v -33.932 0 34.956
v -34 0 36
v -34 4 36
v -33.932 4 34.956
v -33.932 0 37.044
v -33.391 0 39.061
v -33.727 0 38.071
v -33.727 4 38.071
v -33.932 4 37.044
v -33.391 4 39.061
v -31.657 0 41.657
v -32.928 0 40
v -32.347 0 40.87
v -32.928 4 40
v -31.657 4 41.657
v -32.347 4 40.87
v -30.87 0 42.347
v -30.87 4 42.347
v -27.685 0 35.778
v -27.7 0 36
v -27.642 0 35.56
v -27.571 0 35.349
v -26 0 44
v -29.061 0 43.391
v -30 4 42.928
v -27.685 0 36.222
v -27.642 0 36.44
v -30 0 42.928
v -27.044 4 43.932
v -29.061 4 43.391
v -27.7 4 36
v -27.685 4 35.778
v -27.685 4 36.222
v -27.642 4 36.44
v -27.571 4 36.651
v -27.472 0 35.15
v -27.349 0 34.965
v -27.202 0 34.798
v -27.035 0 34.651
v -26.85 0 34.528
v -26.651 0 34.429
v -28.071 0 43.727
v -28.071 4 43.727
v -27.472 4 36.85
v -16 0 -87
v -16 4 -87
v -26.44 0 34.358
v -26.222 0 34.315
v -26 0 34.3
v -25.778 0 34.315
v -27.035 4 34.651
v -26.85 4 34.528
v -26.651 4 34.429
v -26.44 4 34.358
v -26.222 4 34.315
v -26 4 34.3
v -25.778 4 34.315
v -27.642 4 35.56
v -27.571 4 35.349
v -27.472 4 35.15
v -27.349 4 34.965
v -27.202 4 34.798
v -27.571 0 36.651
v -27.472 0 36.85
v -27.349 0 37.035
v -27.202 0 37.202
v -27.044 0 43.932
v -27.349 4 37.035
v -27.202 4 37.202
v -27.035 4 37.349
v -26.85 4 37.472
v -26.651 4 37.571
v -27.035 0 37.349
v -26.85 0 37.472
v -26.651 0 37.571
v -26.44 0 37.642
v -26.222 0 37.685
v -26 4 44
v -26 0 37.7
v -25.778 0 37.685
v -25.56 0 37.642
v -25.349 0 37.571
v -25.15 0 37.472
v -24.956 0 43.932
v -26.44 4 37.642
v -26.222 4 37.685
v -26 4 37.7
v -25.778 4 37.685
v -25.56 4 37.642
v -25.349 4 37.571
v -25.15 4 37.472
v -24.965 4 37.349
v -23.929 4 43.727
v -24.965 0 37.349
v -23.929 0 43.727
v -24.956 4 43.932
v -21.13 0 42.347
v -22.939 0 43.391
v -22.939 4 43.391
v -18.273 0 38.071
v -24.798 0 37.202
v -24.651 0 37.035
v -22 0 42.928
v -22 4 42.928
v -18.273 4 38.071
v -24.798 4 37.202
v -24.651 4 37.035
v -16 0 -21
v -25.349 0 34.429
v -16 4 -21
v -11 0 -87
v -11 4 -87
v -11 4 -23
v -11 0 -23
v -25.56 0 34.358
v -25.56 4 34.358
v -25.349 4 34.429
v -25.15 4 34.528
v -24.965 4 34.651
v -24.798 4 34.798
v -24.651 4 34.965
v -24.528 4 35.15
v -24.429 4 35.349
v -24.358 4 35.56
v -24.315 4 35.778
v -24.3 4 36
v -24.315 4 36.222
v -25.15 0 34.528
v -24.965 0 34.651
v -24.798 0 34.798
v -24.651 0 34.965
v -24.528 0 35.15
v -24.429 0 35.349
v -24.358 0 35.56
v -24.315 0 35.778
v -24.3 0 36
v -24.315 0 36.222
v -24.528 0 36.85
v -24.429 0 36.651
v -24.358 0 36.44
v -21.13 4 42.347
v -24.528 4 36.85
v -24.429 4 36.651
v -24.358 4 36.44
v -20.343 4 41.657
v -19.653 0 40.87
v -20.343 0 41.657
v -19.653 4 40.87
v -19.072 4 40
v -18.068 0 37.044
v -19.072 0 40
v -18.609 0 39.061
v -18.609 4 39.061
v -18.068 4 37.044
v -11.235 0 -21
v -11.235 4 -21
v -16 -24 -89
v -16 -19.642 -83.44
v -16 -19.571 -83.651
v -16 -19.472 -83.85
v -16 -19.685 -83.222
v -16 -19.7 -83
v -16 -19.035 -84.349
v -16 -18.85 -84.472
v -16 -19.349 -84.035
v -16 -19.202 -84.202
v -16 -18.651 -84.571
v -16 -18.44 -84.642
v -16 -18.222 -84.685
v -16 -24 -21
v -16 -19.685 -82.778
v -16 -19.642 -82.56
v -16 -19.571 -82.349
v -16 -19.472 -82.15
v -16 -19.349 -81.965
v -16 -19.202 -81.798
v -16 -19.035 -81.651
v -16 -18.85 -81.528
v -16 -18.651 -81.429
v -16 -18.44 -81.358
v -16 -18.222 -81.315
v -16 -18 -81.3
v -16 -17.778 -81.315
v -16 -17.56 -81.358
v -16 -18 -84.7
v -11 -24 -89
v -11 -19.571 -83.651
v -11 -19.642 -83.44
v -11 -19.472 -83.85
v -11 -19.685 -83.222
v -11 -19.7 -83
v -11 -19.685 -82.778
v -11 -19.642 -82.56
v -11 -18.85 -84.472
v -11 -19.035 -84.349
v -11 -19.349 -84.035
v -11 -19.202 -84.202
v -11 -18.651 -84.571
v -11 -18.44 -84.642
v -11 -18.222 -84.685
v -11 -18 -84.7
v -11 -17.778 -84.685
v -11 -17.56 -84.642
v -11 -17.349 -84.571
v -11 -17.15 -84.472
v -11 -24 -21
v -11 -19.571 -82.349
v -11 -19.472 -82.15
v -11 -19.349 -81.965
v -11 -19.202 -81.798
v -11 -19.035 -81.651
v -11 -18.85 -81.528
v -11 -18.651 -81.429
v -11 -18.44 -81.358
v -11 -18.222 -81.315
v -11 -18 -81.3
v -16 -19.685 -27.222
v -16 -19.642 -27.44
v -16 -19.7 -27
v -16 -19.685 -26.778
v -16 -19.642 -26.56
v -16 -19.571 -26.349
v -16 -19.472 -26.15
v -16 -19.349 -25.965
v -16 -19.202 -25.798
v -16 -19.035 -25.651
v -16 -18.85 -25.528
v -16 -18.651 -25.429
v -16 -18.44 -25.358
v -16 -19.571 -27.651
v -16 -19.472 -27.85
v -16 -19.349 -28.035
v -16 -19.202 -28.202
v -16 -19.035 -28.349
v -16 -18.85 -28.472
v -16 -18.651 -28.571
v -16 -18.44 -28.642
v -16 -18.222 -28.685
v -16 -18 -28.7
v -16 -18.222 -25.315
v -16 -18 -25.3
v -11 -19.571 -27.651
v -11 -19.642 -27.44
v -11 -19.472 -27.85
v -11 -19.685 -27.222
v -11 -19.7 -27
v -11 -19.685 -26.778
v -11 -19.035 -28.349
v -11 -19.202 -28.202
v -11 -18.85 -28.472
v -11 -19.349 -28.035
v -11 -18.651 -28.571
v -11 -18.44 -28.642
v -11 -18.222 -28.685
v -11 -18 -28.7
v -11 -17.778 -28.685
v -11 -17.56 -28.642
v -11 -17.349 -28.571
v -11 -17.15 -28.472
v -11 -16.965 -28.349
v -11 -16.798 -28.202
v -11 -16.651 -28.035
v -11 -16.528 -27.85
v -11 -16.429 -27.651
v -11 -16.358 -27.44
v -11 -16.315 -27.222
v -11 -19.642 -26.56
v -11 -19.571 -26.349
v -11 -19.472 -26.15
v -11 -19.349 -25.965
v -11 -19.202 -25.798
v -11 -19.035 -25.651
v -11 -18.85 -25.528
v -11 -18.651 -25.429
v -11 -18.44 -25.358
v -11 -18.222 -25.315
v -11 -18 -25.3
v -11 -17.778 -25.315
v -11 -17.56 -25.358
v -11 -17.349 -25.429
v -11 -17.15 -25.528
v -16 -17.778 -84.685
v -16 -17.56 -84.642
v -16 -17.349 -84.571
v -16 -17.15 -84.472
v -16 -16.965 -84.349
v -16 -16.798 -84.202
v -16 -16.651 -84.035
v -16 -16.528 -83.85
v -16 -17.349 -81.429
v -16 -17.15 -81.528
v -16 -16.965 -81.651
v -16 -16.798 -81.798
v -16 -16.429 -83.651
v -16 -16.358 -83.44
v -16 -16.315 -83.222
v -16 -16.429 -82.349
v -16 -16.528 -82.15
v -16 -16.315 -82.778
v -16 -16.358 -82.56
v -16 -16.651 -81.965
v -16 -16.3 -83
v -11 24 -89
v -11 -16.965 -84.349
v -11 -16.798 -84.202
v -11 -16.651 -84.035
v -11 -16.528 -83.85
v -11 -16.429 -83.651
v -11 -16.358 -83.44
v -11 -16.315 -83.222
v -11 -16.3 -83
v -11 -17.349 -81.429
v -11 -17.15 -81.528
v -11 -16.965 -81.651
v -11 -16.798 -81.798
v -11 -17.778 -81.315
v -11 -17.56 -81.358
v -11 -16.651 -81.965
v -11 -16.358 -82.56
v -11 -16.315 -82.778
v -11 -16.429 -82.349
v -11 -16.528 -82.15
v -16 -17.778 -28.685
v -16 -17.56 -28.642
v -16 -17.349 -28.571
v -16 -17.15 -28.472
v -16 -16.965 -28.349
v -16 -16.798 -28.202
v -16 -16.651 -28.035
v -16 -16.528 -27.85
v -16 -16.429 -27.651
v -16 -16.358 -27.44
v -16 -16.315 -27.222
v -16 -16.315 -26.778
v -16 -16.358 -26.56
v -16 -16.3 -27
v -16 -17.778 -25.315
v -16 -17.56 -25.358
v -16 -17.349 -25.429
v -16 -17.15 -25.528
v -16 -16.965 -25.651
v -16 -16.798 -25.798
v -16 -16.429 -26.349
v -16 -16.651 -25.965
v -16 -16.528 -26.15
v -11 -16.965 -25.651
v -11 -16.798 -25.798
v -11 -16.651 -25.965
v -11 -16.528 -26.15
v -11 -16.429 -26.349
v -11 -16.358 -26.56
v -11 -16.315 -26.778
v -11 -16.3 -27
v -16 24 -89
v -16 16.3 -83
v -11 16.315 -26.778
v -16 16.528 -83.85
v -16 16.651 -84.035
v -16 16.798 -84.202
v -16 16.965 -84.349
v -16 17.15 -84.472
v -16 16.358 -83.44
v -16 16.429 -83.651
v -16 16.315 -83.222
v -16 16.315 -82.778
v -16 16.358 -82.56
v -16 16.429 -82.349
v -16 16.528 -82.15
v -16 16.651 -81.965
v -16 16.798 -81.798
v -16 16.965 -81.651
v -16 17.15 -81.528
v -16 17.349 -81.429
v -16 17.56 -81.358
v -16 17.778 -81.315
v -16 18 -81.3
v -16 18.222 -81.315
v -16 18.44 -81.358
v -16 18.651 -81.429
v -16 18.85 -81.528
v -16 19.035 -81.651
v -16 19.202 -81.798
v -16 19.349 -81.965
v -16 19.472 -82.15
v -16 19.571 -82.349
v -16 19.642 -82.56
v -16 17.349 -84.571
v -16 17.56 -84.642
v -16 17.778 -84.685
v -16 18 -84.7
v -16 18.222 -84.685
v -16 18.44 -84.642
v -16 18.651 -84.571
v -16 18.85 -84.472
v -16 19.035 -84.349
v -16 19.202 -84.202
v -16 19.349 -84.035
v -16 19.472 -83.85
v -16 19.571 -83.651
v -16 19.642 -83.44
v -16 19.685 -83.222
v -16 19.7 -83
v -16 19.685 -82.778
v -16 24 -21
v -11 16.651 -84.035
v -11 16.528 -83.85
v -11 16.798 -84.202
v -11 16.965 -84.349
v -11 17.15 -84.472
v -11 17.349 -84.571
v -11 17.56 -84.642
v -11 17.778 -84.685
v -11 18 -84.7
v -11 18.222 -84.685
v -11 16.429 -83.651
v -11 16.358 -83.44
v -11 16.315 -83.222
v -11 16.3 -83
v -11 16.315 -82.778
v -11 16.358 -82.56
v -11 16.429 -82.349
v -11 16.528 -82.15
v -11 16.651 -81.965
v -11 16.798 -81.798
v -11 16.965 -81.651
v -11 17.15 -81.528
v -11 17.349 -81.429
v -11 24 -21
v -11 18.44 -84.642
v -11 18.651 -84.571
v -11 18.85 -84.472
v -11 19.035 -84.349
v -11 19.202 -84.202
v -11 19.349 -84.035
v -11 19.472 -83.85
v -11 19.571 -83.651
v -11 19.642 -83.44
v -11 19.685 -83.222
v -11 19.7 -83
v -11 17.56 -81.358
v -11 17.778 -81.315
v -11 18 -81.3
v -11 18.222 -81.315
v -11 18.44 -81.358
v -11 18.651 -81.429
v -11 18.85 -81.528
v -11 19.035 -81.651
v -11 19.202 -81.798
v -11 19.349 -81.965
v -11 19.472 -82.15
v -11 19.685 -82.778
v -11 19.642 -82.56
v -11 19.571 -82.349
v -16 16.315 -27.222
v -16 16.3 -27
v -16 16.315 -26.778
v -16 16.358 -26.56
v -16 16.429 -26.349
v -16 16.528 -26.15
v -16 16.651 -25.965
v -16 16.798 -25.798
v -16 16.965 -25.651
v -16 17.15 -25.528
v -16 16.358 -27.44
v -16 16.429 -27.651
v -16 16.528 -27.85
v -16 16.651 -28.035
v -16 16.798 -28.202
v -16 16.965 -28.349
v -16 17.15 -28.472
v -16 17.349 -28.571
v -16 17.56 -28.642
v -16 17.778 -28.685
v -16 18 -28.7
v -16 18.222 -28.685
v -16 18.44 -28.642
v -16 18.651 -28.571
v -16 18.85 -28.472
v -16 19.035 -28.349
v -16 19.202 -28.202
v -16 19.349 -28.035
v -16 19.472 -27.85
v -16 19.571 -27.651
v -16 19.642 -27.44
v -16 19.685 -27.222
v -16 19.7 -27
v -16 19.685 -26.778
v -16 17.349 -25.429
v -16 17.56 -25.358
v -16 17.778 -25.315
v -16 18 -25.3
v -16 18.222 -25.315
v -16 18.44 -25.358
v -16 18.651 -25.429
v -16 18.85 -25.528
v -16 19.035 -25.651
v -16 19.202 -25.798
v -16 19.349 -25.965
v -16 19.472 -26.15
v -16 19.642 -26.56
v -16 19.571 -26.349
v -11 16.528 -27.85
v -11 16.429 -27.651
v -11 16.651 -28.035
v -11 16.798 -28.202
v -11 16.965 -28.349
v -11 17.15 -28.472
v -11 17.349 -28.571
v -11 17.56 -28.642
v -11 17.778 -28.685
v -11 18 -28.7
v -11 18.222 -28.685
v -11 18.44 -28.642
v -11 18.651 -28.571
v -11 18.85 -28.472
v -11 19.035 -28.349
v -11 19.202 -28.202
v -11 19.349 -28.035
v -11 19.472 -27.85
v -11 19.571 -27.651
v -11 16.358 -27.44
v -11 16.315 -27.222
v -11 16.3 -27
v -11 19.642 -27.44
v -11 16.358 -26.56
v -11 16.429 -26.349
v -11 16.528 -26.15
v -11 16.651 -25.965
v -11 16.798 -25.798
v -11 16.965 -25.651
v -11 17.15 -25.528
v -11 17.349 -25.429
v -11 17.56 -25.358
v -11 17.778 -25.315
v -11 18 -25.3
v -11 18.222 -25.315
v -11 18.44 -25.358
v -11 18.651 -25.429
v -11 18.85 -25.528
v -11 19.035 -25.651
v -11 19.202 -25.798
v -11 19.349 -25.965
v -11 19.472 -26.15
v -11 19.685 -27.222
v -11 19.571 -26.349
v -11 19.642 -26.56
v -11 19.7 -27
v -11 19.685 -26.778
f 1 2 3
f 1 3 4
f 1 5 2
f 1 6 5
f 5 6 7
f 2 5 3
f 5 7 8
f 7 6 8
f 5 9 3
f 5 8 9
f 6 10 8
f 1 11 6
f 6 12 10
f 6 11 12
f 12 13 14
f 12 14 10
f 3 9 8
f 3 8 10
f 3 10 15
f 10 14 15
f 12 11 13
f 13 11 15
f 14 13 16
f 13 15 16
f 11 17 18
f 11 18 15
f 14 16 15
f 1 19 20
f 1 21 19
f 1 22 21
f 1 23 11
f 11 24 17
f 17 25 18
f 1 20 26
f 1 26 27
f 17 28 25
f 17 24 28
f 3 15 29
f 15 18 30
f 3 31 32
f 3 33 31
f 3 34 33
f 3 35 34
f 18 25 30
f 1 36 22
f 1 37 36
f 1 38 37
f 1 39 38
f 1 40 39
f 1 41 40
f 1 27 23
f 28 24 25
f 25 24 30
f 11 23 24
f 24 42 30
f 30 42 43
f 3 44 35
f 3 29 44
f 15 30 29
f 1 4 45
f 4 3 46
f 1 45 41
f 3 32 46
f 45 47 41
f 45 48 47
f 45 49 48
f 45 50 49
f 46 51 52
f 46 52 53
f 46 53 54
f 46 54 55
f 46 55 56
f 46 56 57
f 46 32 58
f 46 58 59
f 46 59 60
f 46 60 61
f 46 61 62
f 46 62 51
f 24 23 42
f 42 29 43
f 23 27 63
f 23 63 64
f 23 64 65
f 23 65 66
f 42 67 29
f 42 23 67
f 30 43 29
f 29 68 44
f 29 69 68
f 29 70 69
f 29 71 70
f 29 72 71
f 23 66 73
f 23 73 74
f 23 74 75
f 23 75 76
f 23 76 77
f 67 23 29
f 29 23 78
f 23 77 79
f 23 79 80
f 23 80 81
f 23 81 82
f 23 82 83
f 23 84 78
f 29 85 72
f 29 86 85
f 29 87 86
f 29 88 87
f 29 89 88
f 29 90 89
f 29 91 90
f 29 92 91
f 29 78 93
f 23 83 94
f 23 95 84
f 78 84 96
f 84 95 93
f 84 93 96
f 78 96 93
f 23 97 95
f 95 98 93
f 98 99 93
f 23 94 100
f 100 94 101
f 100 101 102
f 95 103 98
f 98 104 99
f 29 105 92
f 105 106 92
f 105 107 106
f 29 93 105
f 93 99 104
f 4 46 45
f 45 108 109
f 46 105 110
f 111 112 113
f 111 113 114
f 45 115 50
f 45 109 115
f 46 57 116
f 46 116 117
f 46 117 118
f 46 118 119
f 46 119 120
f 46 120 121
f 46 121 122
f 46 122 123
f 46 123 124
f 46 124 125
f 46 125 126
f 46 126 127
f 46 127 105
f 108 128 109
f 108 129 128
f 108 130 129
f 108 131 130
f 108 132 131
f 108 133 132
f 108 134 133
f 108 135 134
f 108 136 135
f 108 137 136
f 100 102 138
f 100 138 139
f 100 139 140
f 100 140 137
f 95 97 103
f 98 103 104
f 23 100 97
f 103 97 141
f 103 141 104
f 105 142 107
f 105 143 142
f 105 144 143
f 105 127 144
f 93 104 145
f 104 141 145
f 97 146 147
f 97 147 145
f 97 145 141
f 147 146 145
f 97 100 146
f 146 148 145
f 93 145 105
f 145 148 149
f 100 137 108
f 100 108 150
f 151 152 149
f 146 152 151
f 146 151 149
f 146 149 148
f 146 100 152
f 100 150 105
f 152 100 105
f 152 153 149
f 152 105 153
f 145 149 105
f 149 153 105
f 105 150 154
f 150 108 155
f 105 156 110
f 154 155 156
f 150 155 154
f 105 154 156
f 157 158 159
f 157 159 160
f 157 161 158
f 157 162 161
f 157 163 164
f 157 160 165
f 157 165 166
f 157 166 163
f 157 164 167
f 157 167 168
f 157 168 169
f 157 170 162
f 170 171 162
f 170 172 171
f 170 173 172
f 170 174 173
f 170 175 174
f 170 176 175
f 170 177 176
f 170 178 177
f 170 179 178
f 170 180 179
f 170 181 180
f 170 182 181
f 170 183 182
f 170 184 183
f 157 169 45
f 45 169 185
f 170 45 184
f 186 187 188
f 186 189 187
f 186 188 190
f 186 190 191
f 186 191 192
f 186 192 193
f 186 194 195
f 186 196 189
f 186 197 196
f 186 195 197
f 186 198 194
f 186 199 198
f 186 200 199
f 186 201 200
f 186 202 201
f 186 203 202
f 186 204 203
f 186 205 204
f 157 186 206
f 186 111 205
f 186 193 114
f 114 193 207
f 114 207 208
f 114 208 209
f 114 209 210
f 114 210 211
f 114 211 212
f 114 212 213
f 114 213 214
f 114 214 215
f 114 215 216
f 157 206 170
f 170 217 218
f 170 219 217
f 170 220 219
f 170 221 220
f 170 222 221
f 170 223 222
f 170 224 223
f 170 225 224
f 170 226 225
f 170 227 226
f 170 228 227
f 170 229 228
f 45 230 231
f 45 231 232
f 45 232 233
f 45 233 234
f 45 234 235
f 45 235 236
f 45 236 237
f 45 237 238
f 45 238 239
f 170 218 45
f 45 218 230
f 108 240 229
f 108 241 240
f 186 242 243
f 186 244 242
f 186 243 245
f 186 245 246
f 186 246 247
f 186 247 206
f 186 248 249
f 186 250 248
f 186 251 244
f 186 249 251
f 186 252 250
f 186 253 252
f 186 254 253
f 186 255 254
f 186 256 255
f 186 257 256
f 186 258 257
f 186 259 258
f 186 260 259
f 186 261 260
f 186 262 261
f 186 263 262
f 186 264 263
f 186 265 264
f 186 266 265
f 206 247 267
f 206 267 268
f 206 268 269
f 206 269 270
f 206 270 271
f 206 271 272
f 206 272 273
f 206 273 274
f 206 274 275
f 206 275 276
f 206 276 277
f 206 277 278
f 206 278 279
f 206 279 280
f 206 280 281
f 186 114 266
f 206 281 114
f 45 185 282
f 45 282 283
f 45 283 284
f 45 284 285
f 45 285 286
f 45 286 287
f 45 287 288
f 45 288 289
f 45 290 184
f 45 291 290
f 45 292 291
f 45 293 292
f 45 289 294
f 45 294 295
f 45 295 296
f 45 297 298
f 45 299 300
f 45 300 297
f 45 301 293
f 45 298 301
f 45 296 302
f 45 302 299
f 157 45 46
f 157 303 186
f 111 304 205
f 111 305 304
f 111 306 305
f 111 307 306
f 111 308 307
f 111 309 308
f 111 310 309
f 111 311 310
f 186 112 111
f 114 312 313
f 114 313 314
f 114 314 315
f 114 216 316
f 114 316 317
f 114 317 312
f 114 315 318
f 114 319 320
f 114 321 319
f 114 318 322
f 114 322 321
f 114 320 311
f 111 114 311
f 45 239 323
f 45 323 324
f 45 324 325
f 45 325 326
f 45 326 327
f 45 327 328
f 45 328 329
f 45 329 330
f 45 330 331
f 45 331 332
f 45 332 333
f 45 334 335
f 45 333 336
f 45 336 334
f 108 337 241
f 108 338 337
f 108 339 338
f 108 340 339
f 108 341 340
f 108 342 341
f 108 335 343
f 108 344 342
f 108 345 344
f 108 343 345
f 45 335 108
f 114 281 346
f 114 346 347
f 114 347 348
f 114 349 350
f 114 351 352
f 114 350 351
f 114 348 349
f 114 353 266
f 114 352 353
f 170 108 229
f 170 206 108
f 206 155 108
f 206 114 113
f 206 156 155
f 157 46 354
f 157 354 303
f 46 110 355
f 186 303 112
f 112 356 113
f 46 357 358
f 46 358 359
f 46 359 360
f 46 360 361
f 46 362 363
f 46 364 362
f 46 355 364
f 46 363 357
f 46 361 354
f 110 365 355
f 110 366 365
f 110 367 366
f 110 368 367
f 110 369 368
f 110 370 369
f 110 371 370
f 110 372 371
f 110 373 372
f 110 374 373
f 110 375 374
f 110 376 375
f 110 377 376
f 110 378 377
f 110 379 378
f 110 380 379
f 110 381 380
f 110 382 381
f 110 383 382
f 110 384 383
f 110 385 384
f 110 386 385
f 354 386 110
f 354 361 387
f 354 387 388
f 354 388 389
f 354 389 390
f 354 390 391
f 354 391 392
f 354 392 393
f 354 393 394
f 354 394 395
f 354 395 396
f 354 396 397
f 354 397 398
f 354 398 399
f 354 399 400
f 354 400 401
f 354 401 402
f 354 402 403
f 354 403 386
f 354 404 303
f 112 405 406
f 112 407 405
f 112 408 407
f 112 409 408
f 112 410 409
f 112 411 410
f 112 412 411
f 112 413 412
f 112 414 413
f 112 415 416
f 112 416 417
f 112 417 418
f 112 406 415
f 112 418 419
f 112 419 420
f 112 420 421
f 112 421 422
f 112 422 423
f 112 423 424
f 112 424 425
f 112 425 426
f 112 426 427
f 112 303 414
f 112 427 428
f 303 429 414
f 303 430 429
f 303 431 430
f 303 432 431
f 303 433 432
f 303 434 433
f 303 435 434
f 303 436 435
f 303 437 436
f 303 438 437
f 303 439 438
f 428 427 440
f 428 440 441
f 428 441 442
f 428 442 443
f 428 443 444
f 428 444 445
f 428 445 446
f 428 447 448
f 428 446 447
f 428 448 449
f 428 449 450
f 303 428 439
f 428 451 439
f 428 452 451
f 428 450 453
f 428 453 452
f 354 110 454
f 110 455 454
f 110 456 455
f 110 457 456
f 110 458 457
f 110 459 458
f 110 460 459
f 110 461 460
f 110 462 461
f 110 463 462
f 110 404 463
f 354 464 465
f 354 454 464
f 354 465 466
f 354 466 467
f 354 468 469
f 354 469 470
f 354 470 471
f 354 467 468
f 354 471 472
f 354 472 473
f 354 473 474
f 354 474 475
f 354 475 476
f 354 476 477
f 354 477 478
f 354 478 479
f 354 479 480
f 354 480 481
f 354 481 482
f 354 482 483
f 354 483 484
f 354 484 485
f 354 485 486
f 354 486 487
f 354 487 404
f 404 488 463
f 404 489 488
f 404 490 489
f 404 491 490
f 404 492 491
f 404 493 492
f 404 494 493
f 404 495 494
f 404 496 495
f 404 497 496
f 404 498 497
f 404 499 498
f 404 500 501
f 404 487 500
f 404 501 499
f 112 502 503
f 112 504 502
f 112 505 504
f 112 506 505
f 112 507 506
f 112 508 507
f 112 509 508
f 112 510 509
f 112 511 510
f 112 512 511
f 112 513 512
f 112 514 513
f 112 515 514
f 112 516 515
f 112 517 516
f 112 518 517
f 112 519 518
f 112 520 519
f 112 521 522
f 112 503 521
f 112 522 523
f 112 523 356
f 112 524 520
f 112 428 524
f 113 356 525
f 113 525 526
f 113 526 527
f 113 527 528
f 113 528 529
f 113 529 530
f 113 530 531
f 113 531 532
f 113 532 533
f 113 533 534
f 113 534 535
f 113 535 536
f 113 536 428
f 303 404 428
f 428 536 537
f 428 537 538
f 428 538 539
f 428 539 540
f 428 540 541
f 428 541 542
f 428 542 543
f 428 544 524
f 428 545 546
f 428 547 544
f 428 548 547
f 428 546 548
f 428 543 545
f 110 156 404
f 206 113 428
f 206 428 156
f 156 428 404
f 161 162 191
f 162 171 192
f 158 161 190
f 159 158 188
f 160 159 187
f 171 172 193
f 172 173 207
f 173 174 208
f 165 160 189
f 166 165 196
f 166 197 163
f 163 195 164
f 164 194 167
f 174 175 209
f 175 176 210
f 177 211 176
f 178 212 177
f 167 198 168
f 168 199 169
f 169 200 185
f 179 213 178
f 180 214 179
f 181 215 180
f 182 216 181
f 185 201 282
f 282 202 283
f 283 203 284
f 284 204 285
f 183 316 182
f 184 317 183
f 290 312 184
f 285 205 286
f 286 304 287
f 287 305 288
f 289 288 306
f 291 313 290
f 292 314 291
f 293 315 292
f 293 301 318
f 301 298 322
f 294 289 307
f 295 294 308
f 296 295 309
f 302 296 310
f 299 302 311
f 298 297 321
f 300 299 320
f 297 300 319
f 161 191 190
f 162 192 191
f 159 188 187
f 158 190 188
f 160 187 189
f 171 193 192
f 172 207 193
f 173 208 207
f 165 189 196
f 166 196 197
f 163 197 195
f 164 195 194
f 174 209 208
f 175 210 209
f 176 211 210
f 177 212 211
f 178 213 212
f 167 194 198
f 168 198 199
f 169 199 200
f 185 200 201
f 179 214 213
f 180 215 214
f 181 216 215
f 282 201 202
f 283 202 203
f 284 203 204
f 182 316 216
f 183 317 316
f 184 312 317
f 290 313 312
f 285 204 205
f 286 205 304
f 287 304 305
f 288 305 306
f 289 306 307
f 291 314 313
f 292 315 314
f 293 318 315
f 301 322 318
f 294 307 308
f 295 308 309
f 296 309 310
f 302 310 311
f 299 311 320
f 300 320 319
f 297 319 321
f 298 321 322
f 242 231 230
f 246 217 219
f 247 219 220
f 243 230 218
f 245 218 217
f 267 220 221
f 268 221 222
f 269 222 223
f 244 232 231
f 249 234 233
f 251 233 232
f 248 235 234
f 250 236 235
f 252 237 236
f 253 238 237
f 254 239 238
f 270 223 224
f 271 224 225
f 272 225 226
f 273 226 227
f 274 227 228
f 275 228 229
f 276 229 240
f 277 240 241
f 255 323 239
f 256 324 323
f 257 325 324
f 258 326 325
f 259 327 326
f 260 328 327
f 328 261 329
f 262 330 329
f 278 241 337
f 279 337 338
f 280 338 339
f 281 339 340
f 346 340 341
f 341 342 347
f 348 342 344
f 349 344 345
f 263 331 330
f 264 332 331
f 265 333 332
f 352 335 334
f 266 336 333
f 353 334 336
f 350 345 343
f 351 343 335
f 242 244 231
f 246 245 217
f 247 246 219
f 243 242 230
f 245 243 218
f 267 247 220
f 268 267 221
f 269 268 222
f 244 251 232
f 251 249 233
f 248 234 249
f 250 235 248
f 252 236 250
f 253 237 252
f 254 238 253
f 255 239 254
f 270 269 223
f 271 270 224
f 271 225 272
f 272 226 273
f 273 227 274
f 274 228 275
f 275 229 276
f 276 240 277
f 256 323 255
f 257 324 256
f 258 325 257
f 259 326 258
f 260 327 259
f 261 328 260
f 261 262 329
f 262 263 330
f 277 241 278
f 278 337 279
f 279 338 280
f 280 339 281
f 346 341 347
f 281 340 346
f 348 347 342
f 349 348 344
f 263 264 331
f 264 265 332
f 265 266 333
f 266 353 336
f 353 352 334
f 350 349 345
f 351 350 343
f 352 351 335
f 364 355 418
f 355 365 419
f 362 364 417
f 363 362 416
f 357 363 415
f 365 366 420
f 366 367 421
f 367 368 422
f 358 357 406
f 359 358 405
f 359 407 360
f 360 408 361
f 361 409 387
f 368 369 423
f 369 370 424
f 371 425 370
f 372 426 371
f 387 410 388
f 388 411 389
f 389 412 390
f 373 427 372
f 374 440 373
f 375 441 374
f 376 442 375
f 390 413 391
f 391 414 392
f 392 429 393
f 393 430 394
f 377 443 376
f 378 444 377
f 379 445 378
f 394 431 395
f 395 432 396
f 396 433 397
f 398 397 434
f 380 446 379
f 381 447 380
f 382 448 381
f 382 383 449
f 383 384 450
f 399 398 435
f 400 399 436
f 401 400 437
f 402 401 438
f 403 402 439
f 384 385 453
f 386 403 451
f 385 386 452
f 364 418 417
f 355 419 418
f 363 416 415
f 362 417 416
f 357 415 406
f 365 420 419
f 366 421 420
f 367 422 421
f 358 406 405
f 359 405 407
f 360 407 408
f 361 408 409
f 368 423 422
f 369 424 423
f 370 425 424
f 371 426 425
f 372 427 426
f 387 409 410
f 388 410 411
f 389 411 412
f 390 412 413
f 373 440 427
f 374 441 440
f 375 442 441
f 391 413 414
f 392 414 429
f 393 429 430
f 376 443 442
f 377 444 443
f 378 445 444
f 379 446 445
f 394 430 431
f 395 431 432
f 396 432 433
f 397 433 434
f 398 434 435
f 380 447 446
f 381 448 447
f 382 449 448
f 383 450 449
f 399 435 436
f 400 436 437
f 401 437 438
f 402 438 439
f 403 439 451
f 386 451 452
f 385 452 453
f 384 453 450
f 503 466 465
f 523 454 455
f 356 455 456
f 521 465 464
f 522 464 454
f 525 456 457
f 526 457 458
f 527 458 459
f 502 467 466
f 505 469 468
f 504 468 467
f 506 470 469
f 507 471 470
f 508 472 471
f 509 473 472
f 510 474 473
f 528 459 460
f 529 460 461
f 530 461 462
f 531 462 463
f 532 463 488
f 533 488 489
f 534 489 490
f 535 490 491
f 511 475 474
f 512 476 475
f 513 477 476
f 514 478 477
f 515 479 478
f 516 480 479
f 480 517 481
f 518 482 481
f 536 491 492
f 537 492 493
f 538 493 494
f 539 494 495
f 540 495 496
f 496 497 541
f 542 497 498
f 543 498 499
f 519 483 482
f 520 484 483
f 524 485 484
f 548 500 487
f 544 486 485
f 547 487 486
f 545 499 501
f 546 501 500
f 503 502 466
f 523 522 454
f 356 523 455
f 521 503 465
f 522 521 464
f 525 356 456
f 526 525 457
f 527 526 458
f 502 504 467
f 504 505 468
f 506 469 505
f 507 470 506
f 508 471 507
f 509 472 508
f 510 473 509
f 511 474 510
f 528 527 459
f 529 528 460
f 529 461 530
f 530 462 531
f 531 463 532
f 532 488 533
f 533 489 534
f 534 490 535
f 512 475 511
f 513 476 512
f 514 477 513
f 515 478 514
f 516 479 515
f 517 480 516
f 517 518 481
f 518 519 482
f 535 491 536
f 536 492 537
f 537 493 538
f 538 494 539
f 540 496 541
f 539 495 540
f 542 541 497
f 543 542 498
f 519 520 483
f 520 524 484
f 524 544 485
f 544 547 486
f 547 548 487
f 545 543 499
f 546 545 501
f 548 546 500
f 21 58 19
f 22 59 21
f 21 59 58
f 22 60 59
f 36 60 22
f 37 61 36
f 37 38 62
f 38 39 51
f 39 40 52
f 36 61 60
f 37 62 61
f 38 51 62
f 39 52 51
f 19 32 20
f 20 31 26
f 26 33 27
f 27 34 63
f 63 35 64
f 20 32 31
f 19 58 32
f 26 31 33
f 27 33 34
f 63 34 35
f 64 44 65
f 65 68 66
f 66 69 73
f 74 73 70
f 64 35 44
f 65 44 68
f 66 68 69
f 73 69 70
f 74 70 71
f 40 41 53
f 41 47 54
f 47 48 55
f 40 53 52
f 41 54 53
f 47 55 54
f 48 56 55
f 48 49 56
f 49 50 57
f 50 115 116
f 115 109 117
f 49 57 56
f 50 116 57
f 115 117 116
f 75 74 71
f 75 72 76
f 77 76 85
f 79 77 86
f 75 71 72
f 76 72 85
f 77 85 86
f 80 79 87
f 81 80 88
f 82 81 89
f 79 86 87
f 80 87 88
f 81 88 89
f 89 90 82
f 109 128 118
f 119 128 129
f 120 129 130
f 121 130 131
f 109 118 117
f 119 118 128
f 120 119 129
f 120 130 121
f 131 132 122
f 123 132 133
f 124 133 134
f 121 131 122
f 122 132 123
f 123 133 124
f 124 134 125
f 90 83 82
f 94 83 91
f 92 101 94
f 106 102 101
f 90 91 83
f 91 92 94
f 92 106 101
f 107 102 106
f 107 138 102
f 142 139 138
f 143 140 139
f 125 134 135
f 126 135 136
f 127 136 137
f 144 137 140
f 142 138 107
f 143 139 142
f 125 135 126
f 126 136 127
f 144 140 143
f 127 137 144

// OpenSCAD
// PROVISIONAL fixed rear bell-crank support, bolted to the rear plate.
// Plate location relative to hinge, load capacity, and strap attachment need
// physical verification before this carries a powered servo.
include <parameters.scad>
$fn = 48;

support_flange_thickness = 5.0; // PROPOSED, along X
support_cheek_thickness = 4.0; // PROPOSED, along Y
support_flange_width = 48.0; // along Y, covers two M3 hole columns
support_flange_height = 68.0; // along Z
support_flange_x = rear_back_surface_x - rear_plate_standoff
                   - rear_plate_thickness - support_flange_thickness;
support_flange_z = rear_plate_center_z - support_flange_height / 2;
support_pivot_radius = 8.0;

assert(rear_plate_mount_hole_pitch < support_flange_width - 8);
assert(rear_plate_height >= support_flange_height);

module support_pin_y(x, z, radius) {
    translate([x, 0, z])
        rotate([-90, 0, 0])
            cylinder(r = radius, h = support_cheek_thickness);
}

module bell_crank_support() {
    difference() {
        union() {
            // Flat flange meets the separate rear plate at its outer face.
            translate([support_flange_x, -support_flange_width / 2,
                       support_flange_z])
                cube([support_flange_thickness, support_flange_width,
                      support_flange_height]);
            // Deep triangular web: fixed pivot is above the proposed plate.
            hull() {
                support_pin_y(bell_pivot_x, bell_pivot_z, support_pivot_radius);
                translate([support_flange_x, 0, support_flange_z + 2])
                    cube([support_flange_thickness, support_cheek_thickness,
                          support_flange_height - 4]);
            }
        }
        // M3 through flange and plate. Actual bolt stack still unknown.
        for (side = [-1,1], top = [-1,1])
            translate([support_flange_x - 0.1,
                       side * rear_plate_mount_hole_pitch / 2,
                       rear_plate_center_z
                         + top * (rear_plate_height / 2 - 12)])
                rotate([0,90,0])
                    cylinder(d = rear_plate_mount_hole_d,
                             h = support_flange_thickness + 0.2);
        // Central M3 pivot, axis parallel to the bin hinge axis.
        translate([bell_pivot_x, -0.1, bell_pivot_z])
            rotate([-90,0,0])
                cylinder(d = stage2_pivot_hole_d,
                         h = support_cheek_thickness + 0.2);
    }
}

bell_crank_support();
